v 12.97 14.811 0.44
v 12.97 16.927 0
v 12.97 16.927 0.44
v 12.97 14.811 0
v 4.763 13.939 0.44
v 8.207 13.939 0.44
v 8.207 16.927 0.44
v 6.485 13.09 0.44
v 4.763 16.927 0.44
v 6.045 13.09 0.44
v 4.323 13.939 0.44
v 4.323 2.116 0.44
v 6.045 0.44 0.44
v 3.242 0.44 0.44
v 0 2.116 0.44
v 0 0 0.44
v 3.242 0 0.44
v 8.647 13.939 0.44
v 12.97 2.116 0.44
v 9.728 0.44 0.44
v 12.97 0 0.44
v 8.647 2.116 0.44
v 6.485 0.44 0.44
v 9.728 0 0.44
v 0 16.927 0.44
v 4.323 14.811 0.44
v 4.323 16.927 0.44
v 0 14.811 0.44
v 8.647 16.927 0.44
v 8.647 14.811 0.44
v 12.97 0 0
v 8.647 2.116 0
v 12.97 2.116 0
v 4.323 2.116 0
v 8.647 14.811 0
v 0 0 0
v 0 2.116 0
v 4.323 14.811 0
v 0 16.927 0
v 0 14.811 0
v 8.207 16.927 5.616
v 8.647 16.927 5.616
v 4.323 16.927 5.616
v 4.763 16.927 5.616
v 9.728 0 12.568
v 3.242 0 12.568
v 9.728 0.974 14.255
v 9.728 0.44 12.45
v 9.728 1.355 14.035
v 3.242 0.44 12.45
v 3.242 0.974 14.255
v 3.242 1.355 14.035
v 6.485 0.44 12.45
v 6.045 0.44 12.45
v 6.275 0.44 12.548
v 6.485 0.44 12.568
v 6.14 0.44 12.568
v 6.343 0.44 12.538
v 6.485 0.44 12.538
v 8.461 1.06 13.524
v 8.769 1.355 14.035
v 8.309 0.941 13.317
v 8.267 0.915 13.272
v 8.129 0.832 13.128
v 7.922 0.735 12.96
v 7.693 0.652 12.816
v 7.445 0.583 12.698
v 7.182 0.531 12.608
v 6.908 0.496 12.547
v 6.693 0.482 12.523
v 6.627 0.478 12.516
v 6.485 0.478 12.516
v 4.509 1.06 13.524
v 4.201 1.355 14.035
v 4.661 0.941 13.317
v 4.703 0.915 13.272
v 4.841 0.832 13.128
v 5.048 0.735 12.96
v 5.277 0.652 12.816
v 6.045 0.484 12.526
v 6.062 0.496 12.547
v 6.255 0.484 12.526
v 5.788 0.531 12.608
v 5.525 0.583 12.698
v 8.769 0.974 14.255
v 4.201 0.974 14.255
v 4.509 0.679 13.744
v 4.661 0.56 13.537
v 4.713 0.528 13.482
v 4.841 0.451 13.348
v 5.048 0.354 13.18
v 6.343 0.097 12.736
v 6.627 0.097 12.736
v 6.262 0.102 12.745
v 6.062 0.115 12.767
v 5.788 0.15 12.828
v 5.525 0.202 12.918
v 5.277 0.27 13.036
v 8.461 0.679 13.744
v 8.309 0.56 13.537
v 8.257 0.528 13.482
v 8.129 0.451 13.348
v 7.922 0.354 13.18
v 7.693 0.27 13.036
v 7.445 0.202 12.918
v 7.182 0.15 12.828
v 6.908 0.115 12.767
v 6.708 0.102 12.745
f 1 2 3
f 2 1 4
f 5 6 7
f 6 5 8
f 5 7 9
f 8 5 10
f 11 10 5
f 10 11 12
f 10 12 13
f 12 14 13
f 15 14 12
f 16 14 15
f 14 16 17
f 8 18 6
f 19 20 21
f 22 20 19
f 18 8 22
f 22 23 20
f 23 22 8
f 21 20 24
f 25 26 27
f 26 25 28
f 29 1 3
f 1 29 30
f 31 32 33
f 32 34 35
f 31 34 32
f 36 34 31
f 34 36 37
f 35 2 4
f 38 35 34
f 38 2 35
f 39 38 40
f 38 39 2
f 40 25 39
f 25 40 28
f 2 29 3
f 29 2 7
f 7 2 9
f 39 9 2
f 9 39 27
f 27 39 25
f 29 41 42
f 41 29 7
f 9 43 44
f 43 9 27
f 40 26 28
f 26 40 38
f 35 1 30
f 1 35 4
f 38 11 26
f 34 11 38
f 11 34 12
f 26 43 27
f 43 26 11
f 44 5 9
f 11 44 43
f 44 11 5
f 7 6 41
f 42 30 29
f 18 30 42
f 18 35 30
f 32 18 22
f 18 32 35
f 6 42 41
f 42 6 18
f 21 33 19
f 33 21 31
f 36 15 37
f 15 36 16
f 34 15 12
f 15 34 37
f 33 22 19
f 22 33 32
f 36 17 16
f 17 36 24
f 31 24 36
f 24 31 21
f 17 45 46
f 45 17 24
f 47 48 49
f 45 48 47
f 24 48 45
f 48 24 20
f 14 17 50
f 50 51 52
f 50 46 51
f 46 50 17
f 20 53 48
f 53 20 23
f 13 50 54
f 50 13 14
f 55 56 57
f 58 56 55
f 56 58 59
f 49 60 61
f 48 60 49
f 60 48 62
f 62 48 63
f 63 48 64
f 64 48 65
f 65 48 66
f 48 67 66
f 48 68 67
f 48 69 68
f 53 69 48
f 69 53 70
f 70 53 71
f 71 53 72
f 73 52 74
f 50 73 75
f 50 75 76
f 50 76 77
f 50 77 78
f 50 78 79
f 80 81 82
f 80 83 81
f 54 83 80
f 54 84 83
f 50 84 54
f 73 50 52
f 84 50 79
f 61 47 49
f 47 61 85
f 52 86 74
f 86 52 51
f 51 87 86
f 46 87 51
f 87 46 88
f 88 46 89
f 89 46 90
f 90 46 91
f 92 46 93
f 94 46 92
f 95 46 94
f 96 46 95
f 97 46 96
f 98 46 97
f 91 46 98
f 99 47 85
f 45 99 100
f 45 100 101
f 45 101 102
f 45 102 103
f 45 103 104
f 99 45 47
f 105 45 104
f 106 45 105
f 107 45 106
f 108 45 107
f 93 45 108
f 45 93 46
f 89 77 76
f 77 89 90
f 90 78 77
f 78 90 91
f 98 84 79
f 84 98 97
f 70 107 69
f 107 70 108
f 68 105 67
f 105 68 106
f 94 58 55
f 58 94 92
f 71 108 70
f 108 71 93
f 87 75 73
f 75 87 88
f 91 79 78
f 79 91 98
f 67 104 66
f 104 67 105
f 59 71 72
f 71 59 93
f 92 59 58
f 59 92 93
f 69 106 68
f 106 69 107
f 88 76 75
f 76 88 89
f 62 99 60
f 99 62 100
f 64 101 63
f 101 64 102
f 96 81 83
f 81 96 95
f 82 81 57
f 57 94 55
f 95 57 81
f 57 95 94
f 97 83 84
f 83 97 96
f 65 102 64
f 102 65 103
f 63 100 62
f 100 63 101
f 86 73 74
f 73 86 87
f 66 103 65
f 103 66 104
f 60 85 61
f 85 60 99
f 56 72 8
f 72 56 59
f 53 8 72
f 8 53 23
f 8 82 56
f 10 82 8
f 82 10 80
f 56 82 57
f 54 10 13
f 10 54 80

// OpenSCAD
$fn = 50;

union() {
    translate([4.3233, 0, 0]) {
        cube([4.3233, 16.9271, 0.44]);
    };
    union() {
        translate([0, 14.8112, 0]) {
            cube([12.97, 2.1159, 0.44]);
        };
        translate([4.3233, 16.9271, 0]) {
            rotate([180, 270, 0]) {
                linear_extrude(height=0.44) {
                    polygon([[0, 0], [5.6161747435421, 0], [0, 3.2425]]);
                };
            };
        };
        translate([8.2066, 16.9271, 0]) {
            rotate([180, 270, 0]) {
                linear_extrude(height=0.44) {
                    polygon([[0, 0], [5.6161747435421, 0], [0, 3.2425]]);
                };
            };
        };
    };
    difference() {
        union() {
            cube([12.97, 2.1159, 0.44]);
            translate([3.2425, 0, 0]) {
                cube([6.485, 0.44, 12.5676]);
            };
            translate([3.2425, 0, 12.5676]) {
                rotate([-30, 0, 0]) {
                    cube([6.485, 0.44, 1.9486]);
                };
            };
        };
        hull() {
            translate([6.485, 3.2380986202059, 13.5212]) {
                rotate([60, 0, 0]) {
                    cylinder(h=8, r2=2.255, r1=2.255);
                };
            };
            translate([6.485, 3.2380986202059, 15.7712]) {
                rotate([60, 0, 0]) {
                    cylinder(h=8, r2=3.157, r1=3.157);
                };
            };
        };
    };
    translate([6.485, 0.44, 0.44]) {
        rotate([0, 270, 0]) {
            linear_extrude(height=0.44) {
                polygon([[0, 0], [12.1276, 0], [0, 12.64984198631]]);
            };
        };
    };
};
